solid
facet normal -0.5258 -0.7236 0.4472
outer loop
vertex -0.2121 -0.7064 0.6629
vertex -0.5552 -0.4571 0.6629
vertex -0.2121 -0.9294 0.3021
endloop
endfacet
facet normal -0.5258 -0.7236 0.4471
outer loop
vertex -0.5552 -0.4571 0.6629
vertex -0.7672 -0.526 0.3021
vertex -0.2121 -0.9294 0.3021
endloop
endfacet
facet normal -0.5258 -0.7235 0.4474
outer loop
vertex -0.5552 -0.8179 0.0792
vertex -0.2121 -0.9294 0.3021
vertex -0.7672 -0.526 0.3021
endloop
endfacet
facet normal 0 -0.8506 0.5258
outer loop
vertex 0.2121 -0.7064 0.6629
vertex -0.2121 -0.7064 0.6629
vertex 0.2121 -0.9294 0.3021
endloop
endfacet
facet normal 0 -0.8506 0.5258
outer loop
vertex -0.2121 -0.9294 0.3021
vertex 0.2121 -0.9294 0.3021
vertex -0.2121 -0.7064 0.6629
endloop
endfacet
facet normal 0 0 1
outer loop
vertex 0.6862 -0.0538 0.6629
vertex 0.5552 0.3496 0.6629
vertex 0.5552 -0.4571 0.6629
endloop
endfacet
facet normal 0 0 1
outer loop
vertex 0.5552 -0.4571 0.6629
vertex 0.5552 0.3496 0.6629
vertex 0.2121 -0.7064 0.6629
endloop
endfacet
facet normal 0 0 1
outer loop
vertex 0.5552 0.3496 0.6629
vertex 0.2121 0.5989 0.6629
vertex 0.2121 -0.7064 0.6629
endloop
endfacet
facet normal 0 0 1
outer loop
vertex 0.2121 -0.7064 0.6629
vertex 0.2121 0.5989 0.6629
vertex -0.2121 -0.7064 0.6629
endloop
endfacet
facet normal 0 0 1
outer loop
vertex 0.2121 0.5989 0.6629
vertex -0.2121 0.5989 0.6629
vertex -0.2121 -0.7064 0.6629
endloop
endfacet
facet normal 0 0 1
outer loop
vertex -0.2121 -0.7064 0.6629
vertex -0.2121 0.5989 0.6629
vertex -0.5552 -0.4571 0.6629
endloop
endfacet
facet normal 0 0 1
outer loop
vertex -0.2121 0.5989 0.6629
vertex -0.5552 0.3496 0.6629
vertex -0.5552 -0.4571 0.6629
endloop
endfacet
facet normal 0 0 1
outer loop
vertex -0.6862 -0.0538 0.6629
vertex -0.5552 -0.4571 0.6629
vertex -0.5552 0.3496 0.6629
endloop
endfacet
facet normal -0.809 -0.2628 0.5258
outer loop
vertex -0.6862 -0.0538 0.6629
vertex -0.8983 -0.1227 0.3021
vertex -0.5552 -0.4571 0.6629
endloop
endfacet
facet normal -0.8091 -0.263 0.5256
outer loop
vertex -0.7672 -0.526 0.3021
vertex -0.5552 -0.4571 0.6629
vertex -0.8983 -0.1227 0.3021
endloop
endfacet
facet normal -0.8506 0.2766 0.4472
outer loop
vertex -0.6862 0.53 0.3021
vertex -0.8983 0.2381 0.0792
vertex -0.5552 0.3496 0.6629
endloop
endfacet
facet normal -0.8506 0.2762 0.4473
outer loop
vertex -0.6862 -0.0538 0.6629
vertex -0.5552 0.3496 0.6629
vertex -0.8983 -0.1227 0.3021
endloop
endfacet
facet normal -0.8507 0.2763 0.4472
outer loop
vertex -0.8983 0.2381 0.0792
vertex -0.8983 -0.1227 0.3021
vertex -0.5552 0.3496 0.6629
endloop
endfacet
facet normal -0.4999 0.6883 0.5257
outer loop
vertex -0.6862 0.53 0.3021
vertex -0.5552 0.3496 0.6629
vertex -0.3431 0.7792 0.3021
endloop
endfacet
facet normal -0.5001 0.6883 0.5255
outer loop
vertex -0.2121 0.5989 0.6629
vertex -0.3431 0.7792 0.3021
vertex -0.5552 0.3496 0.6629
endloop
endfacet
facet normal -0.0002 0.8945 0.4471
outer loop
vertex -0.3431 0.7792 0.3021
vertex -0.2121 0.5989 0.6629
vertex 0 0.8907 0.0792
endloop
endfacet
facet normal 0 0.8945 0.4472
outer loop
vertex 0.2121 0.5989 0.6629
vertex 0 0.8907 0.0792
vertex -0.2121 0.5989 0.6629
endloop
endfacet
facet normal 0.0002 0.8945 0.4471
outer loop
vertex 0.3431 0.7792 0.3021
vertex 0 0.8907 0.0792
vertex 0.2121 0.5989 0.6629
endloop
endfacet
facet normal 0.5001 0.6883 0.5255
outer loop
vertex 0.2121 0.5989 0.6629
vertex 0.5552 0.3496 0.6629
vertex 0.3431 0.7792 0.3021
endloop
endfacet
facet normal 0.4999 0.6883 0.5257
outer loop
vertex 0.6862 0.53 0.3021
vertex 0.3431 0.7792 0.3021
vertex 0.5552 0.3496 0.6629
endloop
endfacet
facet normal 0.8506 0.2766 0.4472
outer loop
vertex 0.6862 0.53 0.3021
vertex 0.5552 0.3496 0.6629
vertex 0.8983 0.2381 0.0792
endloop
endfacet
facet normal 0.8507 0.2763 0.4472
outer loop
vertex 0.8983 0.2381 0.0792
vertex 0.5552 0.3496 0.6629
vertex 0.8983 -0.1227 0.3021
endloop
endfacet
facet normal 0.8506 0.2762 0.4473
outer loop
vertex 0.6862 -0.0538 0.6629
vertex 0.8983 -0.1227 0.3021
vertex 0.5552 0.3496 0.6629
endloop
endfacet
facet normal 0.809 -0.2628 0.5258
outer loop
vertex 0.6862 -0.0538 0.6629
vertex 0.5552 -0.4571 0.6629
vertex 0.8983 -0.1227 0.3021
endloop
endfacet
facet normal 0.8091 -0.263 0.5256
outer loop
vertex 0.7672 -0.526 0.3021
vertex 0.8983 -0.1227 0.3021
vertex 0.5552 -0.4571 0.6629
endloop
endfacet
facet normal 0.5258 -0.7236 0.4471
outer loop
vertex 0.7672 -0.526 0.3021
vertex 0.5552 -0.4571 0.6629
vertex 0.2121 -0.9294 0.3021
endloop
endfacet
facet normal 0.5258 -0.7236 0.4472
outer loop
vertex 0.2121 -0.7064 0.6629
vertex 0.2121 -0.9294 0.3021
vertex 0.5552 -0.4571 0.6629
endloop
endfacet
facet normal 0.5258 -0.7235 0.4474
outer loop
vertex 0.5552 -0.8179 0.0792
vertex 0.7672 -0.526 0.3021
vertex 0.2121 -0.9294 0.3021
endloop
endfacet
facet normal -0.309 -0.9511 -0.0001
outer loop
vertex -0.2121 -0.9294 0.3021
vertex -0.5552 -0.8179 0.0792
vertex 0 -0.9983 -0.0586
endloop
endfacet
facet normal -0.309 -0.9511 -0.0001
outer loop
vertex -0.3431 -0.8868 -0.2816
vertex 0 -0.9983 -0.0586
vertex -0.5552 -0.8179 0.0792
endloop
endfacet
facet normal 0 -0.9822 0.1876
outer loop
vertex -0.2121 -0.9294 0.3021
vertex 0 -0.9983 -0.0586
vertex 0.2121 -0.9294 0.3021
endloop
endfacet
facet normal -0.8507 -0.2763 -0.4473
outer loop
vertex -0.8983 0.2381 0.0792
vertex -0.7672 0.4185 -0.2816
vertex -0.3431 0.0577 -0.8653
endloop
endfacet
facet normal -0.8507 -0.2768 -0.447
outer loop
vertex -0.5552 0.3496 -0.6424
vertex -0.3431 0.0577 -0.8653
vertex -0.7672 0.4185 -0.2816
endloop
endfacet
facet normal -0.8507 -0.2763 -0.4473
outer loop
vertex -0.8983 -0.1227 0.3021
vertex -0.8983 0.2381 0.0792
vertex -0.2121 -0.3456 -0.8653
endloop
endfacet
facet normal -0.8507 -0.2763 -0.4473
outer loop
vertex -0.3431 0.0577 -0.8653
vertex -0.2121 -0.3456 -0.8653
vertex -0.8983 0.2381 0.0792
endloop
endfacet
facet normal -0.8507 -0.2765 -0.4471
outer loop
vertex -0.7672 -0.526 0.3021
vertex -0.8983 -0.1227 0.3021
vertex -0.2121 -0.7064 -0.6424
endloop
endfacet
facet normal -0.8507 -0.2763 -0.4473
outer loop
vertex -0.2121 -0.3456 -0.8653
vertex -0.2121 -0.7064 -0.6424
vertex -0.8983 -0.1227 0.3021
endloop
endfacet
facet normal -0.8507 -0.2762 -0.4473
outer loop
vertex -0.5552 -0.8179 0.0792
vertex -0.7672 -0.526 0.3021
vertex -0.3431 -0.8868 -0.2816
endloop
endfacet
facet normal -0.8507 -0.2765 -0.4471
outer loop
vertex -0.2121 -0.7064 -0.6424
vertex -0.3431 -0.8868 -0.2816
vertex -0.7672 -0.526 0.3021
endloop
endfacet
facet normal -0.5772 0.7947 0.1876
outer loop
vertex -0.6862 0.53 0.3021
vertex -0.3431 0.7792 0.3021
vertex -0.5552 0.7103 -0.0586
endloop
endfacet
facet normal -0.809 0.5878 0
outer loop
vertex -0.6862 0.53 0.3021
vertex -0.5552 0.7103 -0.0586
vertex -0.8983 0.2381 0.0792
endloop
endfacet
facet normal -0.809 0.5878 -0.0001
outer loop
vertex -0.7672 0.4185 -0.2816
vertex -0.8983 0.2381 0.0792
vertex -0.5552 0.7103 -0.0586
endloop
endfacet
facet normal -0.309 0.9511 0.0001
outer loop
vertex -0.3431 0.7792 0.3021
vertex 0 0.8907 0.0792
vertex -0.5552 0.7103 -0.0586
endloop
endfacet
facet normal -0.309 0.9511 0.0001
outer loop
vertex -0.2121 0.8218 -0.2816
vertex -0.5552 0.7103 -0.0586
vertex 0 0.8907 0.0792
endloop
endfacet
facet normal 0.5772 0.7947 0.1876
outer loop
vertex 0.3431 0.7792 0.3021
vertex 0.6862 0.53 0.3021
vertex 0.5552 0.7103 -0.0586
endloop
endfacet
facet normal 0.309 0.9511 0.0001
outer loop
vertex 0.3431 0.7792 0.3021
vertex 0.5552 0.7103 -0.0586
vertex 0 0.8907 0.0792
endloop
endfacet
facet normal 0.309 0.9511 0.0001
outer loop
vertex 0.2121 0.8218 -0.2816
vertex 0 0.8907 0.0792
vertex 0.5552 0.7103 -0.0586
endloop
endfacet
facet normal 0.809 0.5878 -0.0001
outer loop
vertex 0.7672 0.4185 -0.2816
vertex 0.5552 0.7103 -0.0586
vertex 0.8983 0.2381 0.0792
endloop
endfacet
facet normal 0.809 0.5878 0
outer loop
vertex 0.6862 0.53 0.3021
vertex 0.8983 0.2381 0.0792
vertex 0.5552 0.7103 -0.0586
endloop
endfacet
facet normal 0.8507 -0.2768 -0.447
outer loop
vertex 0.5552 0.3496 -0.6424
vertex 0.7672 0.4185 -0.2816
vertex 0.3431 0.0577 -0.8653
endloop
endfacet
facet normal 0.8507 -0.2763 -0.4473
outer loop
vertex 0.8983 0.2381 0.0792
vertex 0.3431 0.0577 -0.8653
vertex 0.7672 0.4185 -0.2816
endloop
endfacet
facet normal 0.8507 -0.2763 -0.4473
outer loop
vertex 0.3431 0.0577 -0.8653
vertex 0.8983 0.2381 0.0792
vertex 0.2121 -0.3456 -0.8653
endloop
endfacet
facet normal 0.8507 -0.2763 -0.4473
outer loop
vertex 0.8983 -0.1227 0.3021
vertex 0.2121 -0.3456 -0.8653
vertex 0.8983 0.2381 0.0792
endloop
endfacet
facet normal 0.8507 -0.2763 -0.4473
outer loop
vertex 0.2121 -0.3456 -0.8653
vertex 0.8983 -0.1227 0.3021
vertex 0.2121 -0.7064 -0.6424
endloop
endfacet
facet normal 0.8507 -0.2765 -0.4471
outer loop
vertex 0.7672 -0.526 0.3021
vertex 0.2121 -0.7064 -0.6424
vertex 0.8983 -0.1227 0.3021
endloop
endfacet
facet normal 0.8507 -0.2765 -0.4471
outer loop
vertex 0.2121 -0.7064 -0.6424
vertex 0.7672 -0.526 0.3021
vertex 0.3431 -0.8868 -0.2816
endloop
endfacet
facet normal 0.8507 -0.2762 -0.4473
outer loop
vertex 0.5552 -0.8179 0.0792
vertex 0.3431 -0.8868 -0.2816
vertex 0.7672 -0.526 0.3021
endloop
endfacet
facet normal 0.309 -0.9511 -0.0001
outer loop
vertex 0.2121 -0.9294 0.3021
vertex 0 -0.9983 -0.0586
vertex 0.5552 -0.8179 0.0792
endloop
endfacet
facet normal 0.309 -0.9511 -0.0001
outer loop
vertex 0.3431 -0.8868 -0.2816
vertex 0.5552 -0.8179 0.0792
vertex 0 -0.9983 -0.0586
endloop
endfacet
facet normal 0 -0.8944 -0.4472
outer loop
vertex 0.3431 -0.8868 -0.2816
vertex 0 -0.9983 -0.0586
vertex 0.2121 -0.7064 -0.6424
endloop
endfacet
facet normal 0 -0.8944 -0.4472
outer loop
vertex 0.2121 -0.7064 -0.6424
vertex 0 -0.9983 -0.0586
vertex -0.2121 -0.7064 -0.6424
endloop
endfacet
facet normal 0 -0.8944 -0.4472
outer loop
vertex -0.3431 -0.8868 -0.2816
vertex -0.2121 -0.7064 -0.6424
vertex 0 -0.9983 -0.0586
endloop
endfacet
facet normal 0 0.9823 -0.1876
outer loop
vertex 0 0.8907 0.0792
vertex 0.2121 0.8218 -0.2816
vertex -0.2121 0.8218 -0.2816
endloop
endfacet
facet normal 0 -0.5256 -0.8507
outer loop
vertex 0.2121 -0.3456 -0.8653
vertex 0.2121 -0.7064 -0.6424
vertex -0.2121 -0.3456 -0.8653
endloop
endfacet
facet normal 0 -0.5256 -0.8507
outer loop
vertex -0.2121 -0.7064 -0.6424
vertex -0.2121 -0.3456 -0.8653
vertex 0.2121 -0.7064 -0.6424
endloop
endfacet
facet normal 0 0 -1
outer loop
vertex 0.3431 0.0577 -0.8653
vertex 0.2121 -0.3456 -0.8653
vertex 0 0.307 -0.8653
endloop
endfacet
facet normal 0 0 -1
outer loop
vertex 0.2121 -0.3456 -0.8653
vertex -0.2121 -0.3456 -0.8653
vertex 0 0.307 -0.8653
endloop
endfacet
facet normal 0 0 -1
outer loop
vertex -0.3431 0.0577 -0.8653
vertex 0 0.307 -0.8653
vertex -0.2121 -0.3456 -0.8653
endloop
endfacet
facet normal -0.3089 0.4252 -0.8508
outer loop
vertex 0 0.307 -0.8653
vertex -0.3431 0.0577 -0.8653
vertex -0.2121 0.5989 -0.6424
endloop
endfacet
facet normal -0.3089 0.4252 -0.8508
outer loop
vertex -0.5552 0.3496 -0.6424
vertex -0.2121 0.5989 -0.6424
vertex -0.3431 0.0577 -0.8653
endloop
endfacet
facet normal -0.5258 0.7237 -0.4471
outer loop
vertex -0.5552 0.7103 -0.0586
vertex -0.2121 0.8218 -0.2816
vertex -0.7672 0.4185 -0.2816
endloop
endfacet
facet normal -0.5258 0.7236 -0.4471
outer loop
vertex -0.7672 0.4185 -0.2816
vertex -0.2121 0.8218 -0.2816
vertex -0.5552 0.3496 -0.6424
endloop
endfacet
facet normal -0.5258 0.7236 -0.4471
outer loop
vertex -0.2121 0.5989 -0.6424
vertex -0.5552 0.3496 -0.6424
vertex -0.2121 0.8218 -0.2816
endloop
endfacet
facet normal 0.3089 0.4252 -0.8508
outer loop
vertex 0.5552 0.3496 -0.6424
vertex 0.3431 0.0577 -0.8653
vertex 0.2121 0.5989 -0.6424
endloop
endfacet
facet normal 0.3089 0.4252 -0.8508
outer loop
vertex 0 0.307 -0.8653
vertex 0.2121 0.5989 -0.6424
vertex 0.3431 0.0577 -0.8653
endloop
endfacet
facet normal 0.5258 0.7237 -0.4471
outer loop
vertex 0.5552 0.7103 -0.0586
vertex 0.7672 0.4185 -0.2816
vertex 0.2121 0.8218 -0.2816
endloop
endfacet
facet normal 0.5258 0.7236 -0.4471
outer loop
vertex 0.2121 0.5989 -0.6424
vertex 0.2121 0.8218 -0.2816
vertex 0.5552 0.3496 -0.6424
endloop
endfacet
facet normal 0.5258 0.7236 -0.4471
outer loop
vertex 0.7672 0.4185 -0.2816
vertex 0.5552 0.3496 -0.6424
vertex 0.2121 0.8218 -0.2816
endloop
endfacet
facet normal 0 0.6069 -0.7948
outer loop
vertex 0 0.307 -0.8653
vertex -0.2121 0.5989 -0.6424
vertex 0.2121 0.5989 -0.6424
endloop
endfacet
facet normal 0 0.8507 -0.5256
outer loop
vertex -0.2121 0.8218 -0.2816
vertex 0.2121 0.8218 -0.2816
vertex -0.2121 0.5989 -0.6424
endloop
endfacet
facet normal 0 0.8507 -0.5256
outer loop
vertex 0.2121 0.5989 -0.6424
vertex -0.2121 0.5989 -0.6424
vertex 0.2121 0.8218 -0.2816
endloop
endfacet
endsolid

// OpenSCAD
polyhedron( points = [[-0.212053434101097, -0.706413310849498, 0.662904419473374], [-0.555163098334814, -0.457129547976405, 0.662904419473374], [-0.686219328116203, -0.0537799469367881, 0.662904419473374], [-0.55516309822616, 0.34956965406752, 0.662904419473374], [-0.212053434042494, 0.598853416810104, 0.662904419473374], [0.21205343459244, 0.598853416772024, 0.662904419473374], [0.555163098731335, 0.349569653967821, 0.662904419473374], [0.686219328548943, -0.0537799470600251, 0.662904419473374], [0.555163098695117, -0.457129548076105, 0.662904419473374], [0.212053434533837, -0.706413310849498, 0.662904419473374], [-0.212053434082056, -0.92937948676416, 0.302137568860888], [-0.767216532638751, -0.526029885627726, 0.302137568852526], [-0.89827276238284, -0.122680284370187, 0.302137568805775], [-0.686219327964364, 0.529953079408759, 0.302137568838594], [-0.343109663843904, 0.779236842082362, 0.302137568805775], [0.343109664480572, 0.779236842004331, 0.302137568838595], [0.686219328534333, 0.529953079238925, 0.302137568805775], [0.898272762804388, -0.122680284588246, 0.302137568838594], [0.767216532961148, -0.526029885511367, 0.302137568805775], [0.212053434486955, -0.929379486749524, 0.302137568884571], [1.11080911377824e-10, -0.998279823669024, -0.0586292819193784], [-0.555163098364373, -0.817896398876749, 0.0791713932123004], [-0.898272762292094, 0.238086566289041, 0.0791713930798391], [3.6287529236727e-10, 0.890719929869209, 0.0791713930798391], [0.898272762815377, 0.238086566010373, 0.0791713930798391], [0.555163098585684, -0.817896398671323, 0.0791713930798391], [-0.343109664158381, -0.88679673578579, -0.281595457393499], [-0.212053434572183, -0.706413309820364, -0.642362307764246], [-0.212053434975958, -0.345646458851704, -0.865328482887431], [-0.343109665227982, 0.0577031421648701, -0.865328482245859], [-0.555163099775376, 0.349569654757126, -0.642362306005564], [-0.767216532927119, 0.418469991865384, -0.28159545750378], [0.34310966412112, -0.886796735153216, -0.281595457571569], [0.212053434062751, -0.706413309412381, -0.642362307908358], [0.212053434069015, -0.345646460445777, -0.865328483587687], [0.343109663965673, 0.0577031405541547, -0.865328483743631], [0.555163098398645, 0.349569653758117, -0.642362308195253], [0.767216532893303, 0.418469991271842, -0.281595457552395], [-1.30336552298767e-09, 0.306986905432126, -0.86532848207092], [-0.212053435890952, 0.598853417963247, -0.642362305846587], [0.212053434243918, 0.598853416684819, -0.642362308288103], [-0.212053433871723, 0.821819592061276, -0.281595457400841], [0.212053434783852, 0.821819592944856, -0.28159545750378], [0.555163098906288, 0.710336505078439, -0.0586292816066971], [-0.55516309859646, 0.710336504989135, -0.0586292816066971]], faces = [[0, 1, 11, 21, 10], [0, 10, 19, 9], [0, 9, 8, 7, 6, 5, 4, 3, 2, 1], [1, 2, 12, 11], [2, 3, 13, 22, 12], [3, 4, 14, 13], [4, 5, 15, 23, 14], [5, 6, 16, 15], [6, 7, 17, 24, 16], [7, 8, 18, 17], [8, 9, 19, 25, 18], [10, 21, 26, 20], [10, 20, 19], [11, 12, 22, 31, 30, 29, 28, 27, 26, 21], [13, 14, 44], [13, 44, 31, 22], [14, 23, 41, 44], [15, 16, 43], [15, 43, 42, 23], [16, 24, 37, 43], [17, 18, 25, 32, 33, 34, 35, 36, 37, 24], [19, 20, 32, 25], [20, 26, 27, 33, 32], [23, 42, 41], [27, 28, 34, 33], [28, 29, 38, 35, 34], [29, 30, 39, 38], [30, 31, 44, 41, 39], [35, 38, 40, 36], [36, 40, 42, 43, 37], [38, 39, 40], [39, 41, 42, 40]]);
